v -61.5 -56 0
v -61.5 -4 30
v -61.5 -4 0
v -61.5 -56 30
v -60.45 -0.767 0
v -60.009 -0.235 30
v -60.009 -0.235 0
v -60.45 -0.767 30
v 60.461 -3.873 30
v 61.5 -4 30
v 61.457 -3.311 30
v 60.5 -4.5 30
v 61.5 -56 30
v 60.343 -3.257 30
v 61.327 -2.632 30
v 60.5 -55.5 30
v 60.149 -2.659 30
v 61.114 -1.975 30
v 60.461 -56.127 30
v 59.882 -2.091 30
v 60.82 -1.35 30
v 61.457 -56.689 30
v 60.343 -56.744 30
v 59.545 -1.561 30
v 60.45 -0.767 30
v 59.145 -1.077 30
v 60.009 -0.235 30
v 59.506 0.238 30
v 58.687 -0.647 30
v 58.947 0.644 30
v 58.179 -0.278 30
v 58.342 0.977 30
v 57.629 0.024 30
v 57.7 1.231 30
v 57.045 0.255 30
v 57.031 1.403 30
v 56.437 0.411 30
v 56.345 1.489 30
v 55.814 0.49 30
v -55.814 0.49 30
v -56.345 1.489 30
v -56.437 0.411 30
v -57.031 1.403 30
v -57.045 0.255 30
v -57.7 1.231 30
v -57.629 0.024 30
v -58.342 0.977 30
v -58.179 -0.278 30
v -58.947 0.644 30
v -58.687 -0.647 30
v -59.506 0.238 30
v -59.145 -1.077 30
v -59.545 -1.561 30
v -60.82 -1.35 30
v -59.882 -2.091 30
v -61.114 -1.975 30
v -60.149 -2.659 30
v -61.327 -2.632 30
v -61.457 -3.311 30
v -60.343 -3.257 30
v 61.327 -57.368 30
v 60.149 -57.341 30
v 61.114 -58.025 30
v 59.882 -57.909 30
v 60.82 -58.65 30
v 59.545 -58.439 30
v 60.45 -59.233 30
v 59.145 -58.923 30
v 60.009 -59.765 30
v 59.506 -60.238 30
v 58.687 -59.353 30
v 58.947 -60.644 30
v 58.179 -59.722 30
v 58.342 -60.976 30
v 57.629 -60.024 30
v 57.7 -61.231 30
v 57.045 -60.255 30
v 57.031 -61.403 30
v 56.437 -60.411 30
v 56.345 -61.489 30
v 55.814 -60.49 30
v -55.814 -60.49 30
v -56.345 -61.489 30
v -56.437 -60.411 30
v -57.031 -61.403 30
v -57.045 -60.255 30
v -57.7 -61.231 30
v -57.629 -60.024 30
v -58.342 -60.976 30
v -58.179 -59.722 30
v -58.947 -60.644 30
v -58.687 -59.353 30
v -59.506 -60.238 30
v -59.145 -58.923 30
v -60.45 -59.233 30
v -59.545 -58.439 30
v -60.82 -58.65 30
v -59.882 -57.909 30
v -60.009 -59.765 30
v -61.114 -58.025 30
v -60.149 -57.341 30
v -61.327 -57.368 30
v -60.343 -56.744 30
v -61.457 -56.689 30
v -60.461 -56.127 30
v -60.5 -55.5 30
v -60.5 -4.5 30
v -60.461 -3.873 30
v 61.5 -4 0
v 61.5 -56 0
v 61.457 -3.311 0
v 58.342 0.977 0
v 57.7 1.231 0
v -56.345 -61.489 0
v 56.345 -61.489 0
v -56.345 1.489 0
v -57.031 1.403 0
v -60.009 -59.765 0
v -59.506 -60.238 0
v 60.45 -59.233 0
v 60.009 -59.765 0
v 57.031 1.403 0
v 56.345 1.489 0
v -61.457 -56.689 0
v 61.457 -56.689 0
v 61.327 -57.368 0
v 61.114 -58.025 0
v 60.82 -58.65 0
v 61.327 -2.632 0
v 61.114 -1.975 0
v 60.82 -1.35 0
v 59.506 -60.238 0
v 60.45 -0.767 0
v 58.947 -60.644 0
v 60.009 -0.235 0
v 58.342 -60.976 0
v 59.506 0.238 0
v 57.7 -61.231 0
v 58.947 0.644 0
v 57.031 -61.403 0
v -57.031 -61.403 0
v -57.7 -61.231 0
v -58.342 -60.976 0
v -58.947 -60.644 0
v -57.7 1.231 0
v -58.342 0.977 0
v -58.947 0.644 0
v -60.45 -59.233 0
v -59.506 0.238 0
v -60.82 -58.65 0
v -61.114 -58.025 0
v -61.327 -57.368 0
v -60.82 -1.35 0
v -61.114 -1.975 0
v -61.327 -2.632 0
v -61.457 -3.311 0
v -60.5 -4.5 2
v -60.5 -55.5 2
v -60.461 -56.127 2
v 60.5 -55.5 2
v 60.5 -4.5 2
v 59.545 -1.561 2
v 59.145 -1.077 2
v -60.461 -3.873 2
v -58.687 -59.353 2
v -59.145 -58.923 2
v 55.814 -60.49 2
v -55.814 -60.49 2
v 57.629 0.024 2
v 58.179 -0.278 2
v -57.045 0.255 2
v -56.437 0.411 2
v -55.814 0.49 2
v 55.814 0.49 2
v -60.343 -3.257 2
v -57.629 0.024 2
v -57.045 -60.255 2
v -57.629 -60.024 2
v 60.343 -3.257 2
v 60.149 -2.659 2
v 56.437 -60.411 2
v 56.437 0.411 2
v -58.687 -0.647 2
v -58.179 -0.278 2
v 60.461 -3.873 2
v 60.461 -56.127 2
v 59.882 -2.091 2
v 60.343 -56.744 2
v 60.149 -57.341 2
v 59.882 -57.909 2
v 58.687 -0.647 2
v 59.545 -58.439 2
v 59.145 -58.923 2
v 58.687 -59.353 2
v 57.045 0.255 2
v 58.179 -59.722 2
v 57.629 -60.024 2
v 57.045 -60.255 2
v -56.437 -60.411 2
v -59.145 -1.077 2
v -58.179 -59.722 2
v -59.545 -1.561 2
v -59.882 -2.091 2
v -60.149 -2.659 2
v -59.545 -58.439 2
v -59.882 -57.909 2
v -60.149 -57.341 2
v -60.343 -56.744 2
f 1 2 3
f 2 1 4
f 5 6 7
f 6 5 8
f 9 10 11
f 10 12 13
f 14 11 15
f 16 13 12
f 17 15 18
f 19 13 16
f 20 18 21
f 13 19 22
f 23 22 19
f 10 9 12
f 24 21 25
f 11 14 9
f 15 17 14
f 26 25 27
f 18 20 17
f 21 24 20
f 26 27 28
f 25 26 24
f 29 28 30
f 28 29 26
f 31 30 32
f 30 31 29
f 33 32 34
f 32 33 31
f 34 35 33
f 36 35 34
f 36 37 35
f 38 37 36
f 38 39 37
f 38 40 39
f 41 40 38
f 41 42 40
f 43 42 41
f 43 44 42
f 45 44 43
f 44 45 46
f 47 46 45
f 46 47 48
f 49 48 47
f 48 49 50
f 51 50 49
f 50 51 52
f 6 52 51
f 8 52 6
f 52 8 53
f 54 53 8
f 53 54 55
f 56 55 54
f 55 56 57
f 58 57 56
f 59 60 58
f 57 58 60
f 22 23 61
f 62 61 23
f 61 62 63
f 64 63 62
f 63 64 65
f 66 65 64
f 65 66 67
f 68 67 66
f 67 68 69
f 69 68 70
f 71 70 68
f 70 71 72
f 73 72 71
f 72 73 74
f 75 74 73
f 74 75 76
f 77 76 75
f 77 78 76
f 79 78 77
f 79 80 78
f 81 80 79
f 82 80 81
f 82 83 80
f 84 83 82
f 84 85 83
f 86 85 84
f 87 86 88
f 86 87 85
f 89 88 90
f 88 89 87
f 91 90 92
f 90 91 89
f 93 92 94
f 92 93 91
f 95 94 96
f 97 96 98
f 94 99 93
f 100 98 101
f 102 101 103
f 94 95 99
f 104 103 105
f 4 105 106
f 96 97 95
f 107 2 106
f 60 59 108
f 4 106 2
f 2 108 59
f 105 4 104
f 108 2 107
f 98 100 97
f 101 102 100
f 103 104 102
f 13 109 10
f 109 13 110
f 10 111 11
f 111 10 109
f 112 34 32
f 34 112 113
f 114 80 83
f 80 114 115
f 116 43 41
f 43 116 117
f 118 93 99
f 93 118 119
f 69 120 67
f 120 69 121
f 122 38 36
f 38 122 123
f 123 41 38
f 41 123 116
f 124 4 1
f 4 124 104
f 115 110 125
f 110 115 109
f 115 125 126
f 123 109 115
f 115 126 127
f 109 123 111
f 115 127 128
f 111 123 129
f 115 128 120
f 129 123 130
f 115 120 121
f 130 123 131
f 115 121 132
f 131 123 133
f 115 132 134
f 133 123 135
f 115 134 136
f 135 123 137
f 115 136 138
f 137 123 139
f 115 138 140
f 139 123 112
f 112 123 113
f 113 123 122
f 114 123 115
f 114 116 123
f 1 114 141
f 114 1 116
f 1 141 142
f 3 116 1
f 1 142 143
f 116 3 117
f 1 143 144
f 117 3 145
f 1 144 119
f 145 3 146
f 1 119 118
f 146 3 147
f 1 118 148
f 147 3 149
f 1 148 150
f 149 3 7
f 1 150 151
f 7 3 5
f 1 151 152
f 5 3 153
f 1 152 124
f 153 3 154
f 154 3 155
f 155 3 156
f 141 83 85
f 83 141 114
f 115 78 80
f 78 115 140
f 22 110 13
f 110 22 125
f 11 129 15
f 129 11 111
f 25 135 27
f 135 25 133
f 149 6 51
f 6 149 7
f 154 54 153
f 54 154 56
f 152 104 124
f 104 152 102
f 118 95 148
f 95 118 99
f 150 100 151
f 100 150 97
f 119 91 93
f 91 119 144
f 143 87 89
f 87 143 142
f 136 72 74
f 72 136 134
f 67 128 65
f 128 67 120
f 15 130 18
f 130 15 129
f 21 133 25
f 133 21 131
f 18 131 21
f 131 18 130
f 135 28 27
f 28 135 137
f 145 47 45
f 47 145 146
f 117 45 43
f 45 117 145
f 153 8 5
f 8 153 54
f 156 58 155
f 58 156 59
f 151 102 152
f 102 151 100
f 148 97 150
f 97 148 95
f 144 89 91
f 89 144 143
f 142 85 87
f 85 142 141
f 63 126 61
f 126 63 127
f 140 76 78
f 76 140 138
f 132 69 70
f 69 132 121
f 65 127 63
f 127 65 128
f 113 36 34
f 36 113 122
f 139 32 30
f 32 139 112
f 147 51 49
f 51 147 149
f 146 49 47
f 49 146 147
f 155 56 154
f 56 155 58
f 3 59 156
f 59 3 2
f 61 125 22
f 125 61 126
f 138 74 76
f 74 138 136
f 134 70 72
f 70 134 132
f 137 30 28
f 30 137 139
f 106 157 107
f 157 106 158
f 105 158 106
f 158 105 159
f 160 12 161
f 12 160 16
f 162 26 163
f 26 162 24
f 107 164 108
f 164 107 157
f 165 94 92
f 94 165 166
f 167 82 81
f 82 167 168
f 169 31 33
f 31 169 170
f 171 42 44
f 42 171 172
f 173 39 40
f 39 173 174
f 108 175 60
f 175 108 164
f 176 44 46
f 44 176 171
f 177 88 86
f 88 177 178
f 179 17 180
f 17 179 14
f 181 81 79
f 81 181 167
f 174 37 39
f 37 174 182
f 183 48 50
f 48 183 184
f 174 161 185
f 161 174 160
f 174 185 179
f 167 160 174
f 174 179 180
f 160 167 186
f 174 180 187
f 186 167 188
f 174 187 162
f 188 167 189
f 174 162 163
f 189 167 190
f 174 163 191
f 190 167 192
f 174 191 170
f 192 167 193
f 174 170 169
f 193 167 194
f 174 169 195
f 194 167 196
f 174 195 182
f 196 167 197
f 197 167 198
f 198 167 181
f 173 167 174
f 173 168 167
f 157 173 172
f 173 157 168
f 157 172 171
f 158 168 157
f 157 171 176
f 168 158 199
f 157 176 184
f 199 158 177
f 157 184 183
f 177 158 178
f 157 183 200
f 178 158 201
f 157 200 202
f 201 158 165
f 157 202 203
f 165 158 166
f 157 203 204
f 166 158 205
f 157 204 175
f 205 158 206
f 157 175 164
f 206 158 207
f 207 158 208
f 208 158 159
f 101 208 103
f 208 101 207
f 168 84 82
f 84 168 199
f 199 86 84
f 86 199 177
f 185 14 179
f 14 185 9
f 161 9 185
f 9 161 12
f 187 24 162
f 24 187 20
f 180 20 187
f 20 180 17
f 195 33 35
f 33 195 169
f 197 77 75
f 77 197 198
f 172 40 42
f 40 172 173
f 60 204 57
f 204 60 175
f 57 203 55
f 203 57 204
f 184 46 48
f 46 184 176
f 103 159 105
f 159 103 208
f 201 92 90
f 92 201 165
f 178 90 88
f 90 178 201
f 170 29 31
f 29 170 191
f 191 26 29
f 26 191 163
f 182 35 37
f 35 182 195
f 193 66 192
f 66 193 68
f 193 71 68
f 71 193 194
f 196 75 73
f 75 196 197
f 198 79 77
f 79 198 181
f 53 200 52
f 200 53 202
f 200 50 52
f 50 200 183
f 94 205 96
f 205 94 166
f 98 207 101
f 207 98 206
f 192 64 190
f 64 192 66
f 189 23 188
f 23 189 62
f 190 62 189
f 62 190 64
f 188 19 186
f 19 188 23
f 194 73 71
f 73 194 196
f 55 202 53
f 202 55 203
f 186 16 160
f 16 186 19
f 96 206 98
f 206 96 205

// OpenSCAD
$fn = 50;


difference() {
	union() {
		translate(v = [0, -30.0000000000, 0]) {
			hull() {
				translate(v = [-56.0000000000, 26.0000000000, 0]) {
					cylinder(h = 30, r = 5.5000000000);
				}
				translate(v = [56.0000000000, 26.0000000000, 0]) {
					cylinder(h = 30, r = 5.5000000000);
				}
				translate(v = [-56.0000000000, -26.0000000000, 0]) {
					cylinder(h = 30, r = 5.5000000000);
				}
				translate(v = [56.0000000000, -26.0000000000, 0]) {
					cylinder(h = 30, r = 5.5000000000);
				}
			}
		}
	}
	union() {
		translate(v = [0, -30.0000000000, 2]) {
			hull() {
				translate(v = [-55.5000000000, 25.5000000000, 0]) {
					cylinder(h = 60, r = 5);
				}
				translate(v = [55.5000000000, 25.5000000000, 0]) {
					cylinder(h = 60, r = 5);
				}
				translate(v = [-55.5000000000, -25.5000000000, 0]) {
					cylinder(h = 60, r = 5);
				}
				translate(v = [55.5000000000, -25.5000000000, 0]) {
					cylinder(h = 60, r = 5);
				}
			}
		}
	}
}
